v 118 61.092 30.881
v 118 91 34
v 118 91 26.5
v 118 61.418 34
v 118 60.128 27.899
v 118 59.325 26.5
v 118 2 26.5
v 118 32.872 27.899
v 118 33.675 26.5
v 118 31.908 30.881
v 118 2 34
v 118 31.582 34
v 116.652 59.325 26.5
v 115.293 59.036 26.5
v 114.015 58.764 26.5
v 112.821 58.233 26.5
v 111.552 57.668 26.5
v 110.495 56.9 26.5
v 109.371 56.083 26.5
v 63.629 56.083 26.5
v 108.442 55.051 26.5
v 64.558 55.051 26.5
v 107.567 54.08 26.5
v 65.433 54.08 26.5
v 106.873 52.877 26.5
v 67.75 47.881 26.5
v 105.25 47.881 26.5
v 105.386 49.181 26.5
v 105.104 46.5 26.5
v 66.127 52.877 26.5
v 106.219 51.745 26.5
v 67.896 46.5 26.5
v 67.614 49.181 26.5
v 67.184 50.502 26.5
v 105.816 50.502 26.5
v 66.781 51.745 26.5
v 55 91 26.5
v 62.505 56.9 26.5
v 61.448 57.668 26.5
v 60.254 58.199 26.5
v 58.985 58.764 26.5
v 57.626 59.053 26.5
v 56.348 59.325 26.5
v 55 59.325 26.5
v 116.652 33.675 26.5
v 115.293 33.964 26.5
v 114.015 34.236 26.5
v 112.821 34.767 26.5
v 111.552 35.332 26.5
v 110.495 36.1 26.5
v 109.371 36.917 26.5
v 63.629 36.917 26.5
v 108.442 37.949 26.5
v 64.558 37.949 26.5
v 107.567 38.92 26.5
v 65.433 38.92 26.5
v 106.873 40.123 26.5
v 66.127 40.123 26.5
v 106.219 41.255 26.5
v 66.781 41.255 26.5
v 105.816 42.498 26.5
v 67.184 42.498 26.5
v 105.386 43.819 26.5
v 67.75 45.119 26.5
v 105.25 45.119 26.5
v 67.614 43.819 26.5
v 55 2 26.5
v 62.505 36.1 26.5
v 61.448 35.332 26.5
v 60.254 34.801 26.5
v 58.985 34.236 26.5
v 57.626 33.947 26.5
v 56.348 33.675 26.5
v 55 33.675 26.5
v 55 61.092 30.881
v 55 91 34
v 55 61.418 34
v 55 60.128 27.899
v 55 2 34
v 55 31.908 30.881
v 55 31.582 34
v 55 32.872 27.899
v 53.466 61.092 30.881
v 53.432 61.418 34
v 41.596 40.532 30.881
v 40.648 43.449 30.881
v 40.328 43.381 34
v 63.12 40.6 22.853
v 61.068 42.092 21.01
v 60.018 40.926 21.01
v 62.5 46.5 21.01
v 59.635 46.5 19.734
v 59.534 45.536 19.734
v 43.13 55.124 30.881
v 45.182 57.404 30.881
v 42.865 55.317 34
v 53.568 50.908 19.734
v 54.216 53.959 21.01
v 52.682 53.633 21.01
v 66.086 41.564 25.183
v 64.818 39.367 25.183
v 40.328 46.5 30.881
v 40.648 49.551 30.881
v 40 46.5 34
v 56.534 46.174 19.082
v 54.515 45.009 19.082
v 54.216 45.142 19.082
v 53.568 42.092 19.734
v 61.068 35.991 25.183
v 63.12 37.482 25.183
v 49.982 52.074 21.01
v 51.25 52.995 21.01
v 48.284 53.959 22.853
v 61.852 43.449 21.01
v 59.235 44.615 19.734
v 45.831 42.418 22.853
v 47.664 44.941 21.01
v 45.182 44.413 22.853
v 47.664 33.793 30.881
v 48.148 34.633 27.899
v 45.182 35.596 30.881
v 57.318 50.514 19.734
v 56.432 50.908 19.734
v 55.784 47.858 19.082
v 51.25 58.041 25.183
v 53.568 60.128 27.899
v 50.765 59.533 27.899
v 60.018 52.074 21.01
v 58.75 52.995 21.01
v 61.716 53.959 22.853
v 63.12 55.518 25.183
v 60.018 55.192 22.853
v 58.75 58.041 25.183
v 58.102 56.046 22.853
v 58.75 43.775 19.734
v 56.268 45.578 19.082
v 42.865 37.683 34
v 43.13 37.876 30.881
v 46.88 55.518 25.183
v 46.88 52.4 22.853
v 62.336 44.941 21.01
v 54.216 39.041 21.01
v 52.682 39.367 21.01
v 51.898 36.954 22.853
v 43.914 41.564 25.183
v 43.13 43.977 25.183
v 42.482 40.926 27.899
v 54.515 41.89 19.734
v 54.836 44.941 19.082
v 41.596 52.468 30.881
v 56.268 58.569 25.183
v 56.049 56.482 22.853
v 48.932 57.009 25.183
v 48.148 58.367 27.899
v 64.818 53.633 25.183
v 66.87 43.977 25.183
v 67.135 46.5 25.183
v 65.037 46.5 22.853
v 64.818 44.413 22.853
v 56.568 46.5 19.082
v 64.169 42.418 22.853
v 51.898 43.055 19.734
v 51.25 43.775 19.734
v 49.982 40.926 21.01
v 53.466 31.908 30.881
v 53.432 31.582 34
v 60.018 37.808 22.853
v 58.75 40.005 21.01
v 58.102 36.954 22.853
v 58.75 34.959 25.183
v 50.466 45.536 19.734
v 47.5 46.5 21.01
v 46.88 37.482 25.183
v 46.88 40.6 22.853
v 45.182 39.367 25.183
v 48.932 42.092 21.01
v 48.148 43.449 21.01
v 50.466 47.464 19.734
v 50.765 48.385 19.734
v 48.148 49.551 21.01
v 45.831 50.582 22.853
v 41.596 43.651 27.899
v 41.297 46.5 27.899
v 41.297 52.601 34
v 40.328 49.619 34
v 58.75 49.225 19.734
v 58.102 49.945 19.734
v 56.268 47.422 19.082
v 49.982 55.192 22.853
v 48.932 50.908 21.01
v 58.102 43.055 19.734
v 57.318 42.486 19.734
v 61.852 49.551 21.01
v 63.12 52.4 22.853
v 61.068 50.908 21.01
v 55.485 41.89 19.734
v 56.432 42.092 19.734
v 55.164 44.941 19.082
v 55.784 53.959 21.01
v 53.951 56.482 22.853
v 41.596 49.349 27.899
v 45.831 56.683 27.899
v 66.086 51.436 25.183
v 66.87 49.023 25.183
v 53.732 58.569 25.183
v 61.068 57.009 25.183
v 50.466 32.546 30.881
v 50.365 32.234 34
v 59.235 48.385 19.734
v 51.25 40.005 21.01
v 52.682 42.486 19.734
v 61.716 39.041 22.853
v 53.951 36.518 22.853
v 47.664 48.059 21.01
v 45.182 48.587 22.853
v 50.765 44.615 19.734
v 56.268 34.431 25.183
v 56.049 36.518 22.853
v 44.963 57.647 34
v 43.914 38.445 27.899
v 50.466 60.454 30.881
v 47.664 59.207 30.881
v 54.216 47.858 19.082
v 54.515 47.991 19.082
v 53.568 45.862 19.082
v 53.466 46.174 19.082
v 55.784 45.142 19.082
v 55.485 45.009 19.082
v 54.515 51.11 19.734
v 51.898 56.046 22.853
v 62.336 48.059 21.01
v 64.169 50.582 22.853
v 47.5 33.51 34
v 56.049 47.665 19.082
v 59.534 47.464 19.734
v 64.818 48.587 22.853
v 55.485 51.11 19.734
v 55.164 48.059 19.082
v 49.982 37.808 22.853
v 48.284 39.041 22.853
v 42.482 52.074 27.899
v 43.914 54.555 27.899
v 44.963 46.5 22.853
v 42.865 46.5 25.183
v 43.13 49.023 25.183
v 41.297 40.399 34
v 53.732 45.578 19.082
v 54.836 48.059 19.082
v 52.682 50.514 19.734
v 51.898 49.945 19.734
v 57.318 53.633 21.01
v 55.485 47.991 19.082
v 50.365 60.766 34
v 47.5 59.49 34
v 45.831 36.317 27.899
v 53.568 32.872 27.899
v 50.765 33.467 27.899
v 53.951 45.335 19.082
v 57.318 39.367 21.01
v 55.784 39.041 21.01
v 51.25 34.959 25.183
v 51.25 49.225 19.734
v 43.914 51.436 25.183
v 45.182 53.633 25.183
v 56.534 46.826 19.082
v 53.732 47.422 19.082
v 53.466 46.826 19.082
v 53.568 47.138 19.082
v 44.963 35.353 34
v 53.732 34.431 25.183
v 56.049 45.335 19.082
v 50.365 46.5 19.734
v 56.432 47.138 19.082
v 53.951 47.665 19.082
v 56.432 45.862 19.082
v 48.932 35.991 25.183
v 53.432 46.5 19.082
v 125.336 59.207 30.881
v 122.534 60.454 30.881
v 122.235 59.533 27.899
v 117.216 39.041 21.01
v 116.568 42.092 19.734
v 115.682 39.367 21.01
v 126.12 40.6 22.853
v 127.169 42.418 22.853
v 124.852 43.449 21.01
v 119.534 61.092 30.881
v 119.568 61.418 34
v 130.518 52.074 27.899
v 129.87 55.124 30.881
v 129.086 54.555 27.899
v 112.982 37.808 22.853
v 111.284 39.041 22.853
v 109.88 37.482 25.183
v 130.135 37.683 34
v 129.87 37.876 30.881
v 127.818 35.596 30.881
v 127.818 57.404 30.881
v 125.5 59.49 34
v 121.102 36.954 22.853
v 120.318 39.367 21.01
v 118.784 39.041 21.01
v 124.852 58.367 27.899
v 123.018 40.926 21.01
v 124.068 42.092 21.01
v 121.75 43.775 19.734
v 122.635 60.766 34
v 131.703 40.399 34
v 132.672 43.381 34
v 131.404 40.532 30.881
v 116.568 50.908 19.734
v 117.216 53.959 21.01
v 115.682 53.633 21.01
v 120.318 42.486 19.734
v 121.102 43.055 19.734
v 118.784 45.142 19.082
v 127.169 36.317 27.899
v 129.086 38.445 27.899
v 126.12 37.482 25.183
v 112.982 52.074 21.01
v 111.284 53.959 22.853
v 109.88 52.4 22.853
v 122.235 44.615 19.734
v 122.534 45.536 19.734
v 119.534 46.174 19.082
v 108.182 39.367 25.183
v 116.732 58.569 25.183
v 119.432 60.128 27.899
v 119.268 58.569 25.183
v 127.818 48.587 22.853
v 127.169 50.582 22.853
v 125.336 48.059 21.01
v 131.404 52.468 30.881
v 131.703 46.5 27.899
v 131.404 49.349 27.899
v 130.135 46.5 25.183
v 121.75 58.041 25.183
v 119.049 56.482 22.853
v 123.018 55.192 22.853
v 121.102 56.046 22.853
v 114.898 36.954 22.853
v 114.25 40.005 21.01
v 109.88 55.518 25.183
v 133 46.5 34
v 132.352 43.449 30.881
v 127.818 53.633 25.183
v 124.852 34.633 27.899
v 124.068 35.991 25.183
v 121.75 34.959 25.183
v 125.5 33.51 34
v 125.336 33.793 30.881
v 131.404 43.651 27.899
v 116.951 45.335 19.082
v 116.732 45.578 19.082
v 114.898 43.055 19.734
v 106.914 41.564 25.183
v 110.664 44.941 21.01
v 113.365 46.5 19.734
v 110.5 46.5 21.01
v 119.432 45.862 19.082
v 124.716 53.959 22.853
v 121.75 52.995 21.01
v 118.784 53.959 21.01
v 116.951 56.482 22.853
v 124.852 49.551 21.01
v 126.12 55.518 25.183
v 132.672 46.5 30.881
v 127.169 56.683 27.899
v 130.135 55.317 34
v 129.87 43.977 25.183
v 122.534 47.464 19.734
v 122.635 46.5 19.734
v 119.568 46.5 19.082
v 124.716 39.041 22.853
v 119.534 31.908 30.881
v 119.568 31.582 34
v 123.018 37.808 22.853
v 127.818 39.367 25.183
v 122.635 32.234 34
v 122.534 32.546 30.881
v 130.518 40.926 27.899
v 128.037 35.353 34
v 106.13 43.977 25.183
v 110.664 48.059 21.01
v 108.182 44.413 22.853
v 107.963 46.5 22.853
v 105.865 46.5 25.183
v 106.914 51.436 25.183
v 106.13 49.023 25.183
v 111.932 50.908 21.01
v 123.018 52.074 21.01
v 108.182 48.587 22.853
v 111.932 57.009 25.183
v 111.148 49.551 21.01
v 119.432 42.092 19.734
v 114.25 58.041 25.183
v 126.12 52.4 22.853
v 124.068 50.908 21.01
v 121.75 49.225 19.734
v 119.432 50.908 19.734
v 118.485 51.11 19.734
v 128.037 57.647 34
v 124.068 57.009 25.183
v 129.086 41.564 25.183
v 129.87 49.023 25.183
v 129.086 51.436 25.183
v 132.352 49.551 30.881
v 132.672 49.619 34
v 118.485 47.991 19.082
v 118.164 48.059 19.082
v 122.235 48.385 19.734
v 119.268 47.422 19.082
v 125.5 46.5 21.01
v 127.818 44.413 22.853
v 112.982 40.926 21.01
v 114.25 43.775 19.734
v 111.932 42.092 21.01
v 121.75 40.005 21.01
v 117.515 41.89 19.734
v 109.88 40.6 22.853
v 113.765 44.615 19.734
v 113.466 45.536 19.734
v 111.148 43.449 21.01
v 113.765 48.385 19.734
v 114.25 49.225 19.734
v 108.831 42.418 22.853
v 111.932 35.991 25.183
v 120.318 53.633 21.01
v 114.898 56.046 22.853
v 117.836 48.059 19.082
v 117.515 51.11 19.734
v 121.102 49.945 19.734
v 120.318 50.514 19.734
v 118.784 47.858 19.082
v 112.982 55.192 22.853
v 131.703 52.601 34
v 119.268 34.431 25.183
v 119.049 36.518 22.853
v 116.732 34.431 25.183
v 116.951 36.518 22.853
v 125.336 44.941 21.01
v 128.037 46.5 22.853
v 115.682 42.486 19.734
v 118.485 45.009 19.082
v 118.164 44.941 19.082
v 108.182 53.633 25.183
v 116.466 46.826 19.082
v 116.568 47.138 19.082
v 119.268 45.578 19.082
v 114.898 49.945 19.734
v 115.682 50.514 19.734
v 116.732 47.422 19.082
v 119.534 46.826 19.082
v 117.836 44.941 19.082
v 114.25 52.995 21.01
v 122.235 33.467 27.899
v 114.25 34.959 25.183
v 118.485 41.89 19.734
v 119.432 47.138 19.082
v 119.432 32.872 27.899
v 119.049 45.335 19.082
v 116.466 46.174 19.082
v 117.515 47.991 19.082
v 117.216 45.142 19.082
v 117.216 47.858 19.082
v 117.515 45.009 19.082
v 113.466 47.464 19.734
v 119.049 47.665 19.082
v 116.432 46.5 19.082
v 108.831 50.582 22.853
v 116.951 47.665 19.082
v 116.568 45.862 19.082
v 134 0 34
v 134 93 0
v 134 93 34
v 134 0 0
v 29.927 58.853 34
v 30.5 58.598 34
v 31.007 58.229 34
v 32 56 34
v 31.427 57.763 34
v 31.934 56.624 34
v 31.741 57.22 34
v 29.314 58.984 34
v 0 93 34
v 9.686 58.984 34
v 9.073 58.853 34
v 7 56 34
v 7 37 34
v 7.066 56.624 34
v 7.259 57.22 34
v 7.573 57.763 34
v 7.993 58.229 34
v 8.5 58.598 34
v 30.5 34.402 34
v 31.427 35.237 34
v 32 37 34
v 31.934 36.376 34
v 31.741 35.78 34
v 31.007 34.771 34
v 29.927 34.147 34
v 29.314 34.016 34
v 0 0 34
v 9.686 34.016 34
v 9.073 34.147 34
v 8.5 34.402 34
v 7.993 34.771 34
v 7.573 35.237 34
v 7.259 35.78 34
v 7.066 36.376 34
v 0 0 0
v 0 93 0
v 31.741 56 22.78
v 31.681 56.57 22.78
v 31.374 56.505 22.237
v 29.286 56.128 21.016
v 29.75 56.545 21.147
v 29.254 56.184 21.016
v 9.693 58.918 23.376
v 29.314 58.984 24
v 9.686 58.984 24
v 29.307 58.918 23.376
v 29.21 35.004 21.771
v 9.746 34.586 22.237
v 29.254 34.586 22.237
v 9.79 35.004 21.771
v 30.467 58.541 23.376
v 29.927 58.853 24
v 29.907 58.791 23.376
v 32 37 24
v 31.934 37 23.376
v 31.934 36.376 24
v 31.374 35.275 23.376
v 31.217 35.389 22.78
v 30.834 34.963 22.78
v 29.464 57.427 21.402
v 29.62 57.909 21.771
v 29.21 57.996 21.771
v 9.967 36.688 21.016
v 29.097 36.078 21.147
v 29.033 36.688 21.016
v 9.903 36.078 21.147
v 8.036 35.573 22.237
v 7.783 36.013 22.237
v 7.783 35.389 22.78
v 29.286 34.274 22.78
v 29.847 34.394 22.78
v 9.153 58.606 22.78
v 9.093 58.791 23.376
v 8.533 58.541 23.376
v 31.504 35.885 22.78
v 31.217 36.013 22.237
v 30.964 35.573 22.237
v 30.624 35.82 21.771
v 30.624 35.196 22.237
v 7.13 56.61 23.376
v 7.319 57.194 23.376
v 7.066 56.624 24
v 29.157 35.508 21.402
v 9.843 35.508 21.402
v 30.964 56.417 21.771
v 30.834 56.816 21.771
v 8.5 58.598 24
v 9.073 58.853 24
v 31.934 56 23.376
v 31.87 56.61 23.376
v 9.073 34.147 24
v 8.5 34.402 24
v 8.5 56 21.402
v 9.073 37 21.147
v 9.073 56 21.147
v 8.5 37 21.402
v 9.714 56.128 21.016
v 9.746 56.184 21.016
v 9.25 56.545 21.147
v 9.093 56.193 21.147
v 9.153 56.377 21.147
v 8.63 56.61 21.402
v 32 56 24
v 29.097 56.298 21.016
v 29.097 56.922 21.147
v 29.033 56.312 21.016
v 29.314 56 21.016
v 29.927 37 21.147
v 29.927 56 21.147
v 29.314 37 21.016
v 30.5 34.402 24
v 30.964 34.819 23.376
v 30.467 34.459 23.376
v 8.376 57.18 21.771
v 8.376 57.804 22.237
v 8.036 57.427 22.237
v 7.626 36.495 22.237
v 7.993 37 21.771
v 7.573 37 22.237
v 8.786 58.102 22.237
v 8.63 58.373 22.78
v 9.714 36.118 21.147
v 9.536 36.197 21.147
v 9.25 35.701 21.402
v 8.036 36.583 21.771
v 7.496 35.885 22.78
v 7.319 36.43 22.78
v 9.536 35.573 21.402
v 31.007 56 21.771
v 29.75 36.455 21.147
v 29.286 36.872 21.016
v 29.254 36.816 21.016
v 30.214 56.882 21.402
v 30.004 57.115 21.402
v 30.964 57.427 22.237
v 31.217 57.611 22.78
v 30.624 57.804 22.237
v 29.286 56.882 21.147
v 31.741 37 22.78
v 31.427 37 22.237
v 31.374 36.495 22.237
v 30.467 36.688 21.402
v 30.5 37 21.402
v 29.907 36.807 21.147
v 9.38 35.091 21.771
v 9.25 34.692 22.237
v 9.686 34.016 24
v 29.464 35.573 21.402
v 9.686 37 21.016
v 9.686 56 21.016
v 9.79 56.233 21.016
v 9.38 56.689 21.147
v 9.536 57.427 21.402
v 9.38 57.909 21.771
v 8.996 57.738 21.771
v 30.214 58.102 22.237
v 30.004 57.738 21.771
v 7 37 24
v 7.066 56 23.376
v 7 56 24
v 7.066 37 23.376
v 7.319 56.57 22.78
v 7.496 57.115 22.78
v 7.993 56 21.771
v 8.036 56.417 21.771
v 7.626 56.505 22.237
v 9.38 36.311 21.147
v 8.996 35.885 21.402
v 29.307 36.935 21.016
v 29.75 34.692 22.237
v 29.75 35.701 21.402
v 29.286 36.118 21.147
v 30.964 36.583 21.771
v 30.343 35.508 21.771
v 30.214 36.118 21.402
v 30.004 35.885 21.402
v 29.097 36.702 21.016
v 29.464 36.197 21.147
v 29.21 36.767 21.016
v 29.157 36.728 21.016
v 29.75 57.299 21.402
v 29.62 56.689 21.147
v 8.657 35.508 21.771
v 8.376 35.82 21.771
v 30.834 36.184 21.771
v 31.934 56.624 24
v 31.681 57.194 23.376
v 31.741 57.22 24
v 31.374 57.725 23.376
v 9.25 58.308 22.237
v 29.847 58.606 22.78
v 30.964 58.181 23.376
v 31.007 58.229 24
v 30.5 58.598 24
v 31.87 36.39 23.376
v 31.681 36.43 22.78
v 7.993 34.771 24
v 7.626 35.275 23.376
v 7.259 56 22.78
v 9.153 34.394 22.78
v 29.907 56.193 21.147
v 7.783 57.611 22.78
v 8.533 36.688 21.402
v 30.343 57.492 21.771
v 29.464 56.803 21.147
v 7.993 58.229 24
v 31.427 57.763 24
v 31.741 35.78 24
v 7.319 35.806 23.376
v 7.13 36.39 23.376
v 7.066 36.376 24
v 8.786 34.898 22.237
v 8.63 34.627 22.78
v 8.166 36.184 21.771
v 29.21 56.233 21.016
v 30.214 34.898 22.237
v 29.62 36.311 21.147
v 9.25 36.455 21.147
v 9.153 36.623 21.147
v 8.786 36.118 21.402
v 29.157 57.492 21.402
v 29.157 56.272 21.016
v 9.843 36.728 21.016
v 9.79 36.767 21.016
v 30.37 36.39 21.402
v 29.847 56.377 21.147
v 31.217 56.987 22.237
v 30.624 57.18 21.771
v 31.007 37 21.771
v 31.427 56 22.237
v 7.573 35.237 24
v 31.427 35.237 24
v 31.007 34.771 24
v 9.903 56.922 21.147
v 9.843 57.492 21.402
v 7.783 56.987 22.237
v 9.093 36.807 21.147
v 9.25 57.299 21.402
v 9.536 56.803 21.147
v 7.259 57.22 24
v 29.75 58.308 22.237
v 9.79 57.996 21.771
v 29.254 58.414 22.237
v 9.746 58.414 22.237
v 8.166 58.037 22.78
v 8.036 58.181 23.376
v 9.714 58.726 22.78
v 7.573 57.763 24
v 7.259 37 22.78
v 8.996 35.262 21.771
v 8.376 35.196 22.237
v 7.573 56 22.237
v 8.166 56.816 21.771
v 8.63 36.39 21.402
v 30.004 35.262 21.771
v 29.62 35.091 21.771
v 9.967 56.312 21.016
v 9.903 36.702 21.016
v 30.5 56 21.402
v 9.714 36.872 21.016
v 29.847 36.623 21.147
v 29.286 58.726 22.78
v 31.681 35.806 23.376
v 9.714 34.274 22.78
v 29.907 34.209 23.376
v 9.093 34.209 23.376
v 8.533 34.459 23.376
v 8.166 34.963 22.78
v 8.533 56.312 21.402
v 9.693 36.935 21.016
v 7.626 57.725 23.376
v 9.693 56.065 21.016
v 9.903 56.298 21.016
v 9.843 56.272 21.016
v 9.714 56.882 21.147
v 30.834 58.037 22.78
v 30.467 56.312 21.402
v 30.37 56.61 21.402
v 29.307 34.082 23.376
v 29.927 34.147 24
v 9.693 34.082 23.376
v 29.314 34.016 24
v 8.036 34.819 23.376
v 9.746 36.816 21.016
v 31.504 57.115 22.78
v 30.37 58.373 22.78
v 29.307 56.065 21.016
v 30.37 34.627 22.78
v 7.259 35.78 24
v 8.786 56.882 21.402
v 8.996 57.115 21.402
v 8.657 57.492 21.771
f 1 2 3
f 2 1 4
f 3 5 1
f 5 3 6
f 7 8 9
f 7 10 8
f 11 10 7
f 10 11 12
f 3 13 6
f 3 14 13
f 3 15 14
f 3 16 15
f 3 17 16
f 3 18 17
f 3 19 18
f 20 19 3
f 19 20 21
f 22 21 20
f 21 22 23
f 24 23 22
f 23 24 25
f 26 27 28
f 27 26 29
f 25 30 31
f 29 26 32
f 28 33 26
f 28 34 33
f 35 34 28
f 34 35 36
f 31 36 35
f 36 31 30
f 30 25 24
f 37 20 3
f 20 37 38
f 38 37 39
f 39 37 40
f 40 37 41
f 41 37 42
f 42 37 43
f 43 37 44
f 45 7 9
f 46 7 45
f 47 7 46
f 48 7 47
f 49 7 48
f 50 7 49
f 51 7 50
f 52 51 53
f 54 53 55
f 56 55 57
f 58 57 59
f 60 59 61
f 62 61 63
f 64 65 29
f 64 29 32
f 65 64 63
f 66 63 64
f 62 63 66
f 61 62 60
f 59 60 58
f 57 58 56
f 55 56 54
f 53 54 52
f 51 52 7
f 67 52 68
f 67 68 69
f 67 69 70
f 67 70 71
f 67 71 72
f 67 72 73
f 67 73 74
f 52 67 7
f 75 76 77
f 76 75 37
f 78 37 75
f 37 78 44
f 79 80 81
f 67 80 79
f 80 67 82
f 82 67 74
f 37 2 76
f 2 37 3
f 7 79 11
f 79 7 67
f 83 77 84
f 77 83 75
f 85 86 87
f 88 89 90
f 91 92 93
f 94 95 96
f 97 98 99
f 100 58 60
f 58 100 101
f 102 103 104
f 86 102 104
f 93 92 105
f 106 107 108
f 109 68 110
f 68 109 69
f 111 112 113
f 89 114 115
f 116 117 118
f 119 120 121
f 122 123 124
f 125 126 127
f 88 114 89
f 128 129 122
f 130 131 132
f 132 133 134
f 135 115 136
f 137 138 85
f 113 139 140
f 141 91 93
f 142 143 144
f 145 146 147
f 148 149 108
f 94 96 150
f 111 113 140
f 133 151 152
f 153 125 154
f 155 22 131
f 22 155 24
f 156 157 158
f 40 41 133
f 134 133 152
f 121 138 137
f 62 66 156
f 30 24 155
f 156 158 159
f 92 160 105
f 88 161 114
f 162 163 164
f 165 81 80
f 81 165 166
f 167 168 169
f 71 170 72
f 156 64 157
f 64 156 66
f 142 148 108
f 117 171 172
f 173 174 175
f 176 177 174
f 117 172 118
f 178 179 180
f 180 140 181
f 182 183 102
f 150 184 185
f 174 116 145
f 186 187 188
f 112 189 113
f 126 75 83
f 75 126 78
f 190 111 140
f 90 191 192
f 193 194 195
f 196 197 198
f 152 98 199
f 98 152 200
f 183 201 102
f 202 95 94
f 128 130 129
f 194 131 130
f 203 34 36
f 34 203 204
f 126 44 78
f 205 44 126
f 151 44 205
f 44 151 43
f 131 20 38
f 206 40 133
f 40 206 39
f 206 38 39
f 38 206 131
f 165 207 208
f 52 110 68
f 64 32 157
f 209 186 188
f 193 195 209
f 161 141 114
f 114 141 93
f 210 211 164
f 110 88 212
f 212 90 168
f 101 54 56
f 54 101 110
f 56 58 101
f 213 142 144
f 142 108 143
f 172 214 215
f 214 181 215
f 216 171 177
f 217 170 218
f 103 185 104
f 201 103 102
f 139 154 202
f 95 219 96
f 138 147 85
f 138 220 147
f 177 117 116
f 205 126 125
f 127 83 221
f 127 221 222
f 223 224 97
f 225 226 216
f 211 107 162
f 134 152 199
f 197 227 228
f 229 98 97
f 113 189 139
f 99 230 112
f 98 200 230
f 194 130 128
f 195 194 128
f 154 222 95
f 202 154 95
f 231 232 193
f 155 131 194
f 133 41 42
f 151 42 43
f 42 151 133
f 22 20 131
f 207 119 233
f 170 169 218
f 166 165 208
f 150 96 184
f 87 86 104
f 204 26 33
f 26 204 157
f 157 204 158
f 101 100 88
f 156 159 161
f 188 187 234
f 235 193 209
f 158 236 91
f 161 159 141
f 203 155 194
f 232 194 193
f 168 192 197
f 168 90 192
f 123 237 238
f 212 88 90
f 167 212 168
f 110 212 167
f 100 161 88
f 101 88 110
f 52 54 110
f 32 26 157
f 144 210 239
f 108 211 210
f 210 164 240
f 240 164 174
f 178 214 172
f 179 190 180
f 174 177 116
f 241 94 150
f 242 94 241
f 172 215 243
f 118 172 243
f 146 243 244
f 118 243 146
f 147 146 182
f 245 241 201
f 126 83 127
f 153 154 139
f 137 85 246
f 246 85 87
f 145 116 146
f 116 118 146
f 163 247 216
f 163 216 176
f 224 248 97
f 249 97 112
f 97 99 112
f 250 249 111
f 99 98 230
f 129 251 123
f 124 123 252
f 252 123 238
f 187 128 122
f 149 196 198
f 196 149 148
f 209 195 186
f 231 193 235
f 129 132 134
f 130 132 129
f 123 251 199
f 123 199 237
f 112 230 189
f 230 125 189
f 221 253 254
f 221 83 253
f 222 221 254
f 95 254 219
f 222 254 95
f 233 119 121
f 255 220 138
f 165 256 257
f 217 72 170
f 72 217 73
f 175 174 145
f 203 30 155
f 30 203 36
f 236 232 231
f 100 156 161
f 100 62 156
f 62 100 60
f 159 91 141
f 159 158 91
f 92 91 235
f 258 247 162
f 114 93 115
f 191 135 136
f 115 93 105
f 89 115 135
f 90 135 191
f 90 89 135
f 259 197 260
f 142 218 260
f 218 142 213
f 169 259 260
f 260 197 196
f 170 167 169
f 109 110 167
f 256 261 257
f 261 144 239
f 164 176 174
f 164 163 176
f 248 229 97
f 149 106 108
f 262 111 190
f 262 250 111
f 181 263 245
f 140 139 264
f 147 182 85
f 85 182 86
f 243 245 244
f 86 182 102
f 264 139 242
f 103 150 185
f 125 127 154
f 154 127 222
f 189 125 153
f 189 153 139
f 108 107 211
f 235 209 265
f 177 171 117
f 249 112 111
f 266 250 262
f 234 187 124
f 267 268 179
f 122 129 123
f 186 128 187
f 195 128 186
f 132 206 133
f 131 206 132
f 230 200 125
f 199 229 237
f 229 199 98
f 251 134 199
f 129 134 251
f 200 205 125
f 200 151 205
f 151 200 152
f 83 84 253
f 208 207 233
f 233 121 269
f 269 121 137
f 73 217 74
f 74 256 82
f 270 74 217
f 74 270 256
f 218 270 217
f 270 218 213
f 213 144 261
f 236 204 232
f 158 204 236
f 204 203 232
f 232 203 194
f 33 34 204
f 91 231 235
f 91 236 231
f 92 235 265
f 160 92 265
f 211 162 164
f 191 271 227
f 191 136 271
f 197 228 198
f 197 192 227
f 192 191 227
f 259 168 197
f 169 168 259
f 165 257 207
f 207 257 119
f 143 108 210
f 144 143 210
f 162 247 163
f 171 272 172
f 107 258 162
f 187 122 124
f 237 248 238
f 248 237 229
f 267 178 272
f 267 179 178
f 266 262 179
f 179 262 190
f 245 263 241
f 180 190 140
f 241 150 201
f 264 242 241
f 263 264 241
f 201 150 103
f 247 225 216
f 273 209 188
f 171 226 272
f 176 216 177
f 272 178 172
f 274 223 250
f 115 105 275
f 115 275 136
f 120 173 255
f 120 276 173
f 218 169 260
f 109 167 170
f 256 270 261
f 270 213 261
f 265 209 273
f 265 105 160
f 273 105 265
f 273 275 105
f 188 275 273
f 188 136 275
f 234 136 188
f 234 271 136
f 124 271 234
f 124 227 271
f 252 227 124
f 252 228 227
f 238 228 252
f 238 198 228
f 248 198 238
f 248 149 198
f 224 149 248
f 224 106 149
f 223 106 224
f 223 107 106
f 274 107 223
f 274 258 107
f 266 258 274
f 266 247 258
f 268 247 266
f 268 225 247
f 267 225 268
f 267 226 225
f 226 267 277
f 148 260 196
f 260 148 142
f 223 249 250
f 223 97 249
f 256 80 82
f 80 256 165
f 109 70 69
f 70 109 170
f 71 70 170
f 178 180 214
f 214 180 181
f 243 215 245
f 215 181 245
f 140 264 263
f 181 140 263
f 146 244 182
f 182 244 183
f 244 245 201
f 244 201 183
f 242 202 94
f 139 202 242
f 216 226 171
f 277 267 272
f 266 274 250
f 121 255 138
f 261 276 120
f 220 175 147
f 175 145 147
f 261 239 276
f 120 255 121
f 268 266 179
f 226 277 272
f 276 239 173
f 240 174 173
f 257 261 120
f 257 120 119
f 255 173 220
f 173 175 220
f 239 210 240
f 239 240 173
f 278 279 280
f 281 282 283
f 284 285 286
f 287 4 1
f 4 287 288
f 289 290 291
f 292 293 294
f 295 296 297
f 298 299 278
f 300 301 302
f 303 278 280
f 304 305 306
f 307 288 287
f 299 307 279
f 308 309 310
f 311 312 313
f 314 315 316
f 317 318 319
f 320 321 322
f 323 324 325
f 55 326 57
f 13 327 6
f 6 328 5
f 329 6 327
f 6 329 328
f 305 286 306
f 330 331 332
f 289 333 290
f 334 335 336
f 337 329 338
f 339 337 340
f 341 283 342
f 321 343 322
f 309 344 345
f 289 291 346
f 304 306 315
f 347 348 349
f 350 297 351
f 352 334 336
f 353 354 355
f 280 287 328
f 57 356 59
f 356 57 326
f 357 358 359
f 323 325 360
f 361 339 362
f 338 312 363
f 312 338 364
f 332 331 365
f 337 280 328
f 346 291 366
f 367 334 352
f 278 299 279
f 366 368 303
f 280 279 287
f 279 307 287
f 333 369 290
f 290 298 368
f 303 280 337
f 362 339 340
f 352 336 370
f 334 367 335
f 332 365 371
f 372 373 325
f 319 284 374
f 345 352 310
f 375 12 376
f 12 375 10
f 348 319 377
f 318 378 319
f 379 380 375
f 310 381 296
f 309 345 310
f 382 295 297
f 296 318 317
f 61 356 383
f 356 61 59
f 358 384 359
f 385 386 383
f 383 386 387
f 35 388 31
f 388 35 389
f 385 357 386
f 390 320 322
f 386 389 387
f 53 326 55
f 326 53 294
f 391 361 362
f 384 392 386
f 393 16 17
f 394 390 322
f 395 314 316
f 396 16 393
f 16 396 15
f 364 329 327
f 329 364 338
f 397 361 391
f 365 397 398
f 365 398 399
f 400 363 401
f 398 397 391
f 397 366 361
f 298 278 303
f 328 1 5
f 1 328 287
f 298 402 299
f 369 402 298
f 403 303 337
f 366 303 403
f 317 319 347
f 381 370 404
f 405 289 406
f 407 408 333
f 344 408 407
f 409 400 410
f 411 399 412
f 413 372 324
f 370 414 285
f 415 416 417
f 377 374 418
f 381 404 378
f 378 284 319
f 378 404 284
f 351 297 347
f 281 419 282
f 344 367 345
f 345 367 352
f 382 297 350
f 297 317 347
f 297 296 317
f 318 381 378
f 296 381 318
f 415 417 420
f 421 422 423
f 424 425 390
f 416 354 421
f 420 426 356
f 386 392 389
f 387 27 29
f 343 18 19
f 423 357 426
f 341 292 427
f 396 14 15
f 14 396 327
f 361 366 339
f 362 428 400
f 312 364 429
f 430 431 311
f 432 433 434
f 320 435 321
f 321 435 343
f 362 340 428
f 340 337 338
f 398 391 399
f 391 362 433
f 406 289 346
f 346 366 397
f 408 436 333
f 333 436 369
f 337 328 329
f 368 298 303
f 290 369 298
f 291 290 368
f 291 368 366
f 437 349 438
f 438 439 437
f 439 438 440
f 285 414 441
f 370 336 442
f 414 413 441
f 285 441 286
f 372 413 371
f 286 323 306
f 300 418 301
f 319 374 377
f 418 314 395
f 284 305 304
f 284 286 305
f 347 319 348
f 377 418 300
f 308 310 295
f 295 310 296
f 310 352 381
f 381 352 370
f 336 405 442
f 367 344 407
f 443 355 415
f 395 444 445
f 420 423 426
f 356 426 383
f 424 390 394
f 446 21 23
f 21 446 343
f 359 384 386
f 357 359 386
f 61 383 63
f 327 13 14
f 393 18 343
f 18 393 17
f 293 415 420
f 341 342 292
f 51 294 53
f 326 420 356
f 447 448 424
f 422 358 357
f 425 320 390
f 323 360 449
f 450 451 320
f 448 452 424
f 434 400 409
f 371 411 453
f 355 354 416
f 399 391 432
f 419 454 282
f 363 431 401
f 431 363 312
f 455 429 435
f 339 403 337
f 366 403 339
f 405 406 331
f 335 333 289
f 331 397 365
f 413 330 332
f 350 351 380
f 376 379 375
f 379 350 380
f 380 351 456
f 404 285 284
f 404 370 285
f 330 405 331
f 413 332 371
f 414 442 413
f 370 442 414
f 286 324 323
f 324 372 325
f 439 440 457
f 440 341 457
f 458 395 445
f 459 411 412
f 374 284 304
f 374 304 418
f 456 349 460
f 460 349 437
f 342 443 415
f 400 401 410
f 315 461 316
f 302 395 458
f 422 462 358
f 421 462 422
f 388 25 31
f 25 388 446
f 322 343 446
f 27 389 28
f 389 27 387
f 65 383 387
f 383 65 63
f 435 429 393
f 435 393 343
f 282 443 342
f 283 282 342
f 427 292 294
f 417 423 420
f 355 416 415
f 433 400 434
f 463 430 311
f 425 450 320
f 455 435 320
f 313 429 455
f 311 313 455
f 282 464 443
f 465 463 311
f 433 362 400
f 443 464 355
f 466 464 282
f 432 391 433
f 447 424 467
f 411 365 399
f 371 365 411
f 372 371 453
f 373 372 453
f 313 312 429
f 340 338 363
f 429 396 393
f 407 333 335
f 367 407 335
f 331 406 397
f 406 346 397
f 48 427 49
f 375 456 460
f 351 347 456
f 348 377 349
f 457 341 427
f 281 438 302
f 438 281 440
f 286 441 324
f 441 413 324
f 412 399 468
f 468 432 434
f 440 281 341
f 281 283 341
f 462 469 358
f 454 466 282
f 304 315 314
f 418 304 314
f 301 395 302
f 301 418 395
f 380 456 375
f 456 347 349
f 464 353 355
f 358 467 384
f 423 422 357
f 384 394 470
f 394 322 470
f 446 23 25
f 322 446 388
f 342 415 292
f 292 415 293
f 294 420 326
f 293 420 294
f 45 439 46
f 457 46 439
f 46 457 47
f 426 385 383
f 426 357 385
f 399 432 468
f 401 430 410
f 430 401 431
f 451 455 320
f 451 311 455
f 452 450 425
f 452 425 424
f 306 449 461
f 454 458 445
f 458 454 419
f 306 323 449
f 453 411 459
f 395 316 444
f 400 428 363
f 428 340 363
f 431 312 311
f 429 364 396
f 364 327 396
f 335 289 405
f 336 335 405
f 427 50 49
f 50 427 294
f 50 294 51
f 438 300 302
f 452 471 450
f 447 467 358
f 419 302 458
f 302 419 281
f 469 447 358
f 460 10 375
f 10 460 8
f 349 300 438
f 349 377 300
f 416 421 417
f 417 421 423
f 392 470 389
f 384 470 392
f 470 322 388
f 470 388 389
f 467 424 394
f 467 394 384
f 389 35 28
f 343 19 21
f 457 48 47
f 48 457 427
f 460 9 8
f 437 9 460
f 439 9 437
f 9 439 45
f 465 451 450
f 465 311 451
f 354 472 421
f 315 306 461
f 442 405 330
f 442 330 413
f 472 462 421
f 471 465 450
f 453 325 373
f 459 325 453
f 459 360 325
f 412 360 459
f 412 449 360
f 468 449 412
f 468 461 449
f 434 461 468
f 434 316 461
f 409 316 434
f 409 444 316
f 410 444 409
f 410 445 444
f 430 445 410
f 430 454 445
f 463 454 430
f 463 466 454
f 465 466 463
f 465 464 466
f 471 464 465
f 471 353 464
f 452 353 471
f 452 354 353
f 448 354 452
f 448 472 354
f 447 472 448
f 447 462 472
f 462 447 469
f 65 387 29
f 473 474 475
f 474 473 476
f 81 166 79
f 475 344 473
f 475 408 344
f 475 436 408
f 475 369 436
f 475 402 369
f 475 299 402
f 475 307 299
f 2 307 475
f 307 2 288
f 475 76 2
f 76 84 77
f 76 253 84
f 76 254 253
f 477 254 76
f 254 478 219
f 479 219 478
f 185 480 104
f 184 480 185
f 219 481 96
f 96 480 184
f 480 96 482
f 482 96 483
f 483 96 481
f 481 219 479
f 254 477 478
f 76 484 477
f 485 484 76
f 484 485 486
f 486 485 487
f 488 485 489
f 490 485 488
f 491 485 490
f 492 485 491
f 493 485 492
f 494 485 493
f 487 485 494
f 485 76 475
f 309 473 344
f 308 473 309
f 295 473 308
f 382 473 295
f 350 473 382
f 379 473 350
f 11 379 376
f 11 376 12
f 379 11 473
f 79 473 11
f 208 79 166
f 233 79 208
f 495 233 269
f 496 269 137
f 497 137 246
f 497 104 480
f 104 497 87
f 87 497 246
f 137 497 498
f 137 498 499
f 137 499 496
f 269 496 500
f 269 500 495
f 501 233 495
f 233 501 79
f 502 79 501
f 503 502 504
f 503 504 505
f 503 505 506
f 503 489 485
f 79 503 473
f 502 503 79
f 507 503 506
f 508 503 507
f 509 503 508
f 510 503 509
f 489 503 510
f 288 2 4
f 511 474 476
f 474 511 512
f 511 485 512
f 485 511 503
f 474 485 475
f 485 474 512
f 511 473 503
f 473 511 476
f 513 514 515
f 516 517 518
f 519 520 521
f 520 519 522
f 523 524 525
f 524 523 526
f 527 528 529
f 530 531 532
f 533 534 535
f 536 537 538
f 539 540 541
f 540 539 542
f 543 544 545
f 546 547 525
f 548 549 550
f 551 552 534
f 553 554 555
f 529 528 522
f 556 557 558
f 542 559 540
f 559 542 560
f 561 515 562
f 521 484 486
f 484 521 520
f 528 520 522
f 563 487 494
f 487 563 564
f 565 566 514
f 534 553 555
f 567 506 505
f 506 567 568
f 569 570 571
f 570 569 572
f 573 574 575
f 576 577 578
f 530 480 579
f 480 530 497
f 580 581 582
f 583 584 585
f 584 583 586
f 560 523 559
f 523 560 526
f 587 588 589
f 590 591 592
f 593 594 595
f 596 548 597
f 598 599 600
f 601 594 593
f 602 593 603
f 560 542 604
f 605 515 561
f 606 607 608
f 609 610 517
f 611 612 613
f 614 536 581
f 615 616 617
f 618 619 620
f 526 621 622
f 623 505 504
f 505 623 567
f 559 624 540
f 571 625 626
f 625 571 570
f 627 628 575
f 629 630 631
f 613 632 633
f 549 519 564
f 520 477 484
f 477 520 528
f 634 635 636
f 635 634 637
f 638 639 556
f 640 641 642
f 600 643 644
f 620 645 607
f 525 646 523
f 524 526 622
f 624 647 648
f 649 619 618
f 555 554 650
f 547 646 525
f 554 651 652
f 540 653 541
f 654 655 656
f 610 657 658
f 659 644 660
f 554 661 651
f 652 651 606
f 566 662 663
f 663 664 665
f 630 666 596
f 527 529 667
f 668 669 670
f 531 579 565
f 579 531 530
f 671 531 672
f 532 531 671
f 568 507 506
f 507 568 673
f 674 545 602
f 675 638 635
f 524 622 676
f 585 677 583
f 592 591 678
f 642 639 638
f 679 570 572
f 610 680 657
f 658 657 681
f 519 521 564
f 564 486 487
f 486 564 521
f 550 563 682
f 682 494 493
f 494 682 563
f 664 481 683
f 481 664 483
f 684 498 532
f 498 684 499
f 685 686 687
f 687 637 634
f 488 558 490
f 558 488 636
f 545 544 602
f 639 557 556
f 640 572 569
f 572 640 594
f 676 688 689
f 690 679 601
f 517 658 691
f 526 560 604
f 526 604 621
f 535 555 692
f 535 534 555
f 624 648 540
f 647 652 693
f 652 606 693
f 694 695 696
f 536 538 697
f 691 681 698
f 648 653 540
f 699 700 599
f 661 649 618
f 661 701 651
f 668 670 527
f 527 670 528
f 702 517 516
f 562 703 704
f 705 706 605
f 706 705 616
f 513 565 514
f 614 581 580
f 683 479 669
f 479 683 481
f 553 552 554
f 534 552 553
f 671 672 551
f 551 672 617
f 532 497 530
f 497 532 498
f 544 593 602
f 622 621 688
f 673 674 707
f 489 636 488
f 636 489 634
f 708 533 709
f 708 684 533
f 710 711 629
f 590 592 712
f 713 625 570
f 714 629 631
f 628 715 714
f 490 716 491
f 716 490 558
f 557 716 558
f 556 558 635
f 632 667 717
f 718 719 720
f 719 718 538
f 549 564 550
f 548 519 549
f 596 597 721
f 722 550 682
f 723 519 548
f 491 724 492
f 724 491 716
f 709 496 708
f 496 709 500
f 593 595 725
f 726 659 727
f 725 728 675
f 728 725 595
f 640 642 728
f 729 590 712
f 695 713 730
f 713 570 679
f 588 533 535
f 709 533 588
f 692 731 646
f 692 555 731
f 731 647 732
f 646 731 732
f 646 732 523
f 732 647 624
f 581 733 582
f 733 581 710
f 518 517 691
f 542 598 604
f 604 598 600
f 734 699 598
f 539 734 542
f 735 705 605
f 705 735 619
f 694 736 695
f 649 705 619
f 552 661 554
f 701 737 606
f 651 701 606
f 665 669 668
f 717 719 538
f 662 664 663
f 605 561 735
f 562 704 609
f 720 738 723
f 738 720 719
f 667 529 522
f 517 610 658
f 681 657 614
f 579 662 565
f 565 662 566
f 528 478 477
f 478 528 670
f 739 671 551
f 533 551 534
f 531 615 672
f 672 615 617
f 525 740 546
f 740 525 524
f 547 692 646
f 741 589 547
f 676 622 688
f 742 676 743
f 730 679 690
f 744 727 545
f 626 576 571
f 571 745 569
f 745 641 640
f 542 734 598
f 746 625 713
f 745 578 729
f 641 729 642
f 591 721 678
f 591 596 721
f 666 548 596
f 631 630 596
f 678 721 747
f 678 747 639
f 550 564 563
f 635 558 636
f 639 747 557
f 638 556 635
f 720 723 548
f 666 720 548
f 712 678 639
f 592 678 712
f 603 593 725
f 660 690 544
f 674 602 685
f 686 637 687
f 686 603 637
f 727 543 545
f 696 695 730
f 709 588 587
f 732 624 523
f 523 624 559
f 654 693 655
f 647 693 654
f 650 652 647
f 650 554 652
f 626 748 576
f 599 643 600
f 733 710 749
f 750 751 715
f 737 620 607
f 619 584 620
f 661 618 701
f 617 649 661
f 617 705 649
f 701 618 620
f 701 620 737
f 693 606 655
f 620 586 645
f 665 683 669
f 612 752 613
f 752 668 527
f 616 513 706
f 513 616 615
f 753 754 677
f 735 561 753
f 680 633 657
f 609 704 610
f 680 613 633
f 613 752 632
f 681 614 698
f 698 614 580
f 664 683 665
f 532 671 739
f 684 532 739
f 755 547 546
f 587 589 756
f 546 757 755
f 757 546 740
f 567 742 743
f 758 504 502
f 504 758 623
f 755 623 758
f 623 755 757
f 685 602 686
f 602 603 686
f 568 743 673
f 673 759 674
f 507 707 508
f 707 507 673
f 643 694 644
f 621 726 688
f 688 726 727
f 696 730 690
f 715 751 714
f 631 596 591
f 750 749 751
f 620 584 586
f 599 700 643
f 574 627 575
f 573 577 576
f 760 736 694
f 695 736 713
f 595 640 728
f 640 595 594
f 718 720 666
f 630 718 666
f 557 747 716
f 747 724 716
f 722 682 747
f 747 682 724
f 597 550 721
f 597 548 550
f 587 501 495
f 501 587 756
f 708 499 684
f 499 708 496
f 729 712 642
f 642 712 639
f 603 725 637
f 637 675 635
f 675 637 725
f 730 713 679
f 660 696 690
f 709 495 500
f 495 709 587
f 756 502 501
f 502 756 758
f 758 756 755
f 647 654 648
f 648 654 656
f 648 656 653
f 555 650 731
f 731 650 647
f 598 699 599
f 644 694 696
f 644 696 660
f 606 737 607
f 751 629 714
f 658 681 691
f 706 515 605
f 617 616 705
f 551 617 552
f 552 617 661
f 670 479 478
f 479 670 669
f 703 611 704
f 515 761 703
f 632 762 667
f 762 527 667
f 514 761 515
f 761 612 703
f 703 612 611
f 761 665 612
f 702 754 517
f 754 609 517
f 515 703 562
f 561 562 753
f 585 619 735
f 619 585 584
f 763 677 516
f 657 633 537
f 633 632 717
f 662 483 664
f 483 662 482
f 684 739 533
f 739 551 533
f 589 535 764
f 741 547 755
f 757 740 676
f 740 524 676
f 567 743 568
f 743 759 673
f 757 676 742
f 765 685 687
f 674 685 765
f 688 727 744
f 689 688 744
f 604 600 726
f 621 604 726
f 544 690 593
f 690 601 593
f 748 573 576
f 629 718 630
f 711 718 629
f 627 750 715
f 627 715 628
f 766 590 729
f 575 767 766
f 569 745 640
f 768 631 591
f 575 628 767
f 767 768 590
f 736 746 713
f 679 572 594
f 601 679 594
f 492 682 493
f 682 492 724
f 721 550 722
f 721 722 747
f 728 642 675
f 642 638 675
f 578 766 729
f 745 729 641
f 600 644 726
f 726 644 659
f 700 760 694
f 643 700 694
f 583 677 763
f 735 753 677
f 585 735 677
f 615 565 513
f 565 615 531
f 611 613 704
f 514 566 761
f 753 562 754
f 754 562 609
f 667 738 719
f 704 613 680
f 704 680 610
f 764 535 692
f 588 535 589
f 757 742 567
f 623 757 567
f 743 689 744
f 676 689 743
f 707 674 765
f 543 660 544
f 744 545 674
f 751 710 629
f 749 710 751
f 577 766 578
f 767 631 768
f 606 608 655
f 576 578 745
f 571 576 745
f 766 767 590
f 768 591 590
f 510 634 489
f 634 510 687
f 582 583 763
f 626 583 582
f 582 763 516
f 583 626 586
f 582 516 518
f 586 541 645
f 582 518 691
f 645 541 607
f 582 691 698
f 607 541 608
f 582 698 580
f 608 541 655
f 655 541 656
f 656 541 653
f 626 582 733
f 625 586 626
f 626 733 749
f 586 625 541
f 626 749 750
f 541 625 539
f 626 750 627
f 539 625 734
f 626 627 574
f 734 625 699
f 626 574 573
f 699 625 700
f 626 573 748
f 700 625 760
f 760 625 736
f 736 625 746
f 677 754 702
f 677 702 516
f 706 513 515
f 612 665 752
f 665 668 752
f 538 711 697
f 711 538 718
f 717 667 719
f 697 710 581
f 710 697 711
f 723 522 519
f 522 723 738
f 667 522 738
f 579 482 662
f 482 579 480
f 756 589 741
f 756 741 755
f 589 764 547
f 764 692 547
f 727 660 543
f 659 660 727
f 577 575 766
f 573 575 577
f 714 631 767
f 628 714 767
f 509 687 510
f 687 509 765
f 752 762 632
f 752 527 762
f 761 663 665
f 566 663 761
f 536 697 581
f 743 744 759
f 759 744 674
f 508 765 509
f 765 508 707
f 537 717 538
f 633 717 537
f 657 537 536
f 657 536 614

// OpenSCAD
// file: ../roundedcube.scad
// Aquired from https://danielupshaw.com/openscad-rounded-corners/
// License unknown

// Higher definition curves
$fs = 0.01;

module roundedcube(size = [1, 1, 1], center = false, radius = 0.5, apply_to = "all") {
	// If single value, convert to [x, y, z] vector
	size = (size[0] == undef) ? [size, size, size] : size;

	translate_min = radius;
	translate_xmax = size[0] - radius;
	translate_ymax = size[1] - radius;
	translate_zmax = size[2] - radius;

	diameter = radius * 2;

	module build_point(type = "sphere", rotate = [0, 0, 0]) {
		if (type == "sphere") {
			sphere(r = radius);
		} else if (type == "cylinder") {
			rotate(a = rotate)
			cylinder(h = diameter, r = radius, center = true);
		}
	}

	obj_translate = (center == false) ?
		[0, 0, 0] : [
			-(size[0] / 2),
			-(size[1] / 2),
			-(size[2] / 2)
		];

	translate(v = obj_translate) {
		hull() {
			for (translate_x = [translate_min, translate_xmax]) {
				x_at = (translate_x == translate_min) ? "min" : "max";
				for (translate_y = [translate_min, translate_ymax]) {
					y_at = (translate_y == translate_min) ? "min" : "max";
					for (translate_z = [translate_min, translate_zmax]) {
						z_at = (translate_z == translate_min) ? "min" : "max";

						translate(v = [translate_x, translate_y, translate_z])
						if (
							(apply_to == "all") ||
							(apply_to == "xmin" && x_at == "min") || (apply_to == "xmax" && x_at == "max") ||
							(apply_to == "ymin" && y_at == "min") || (apply_to == "ymax" && y_at == "max") ||
							(apply_to == "zmin" && z_at == "min") || (apply_to == "zmax" && z_at == "max")
						) {
							build_point("sphere");
						} else {
							rotate =
								(apply_to == "xmin" || apply_to == "xmax" || apply_to == "x") ? [0, 90, 0] : (
								(apply_to == "ymin" || apply_to == "ymax" || apply_to == "y") ? [90, 90, 0] :
								[0, 0, 0]
							);
							build_point("cylinder", rotate);
						}
					}
				}
			}
		}
	}
}
// main file
use <../roundedcube.scad>

BOX_DEPTH = 93;
BOX_WIDTH = 134;
BOX_HEIGHT = 34;

CARD_DEPTH = 89;
CARD_WIDTH = 63;
CARD_HEIGHT = 7.5;

TOKEN_DEPTH = 25;
TOKEN_WIDTH = 25;
TOKEN_HEIGHT = 10;
TOKEN_ROUND = 3;

THUMB_WIDTH = 30;

WALL_WIDTH = 1;

card_holder_total_width = CARD_WIDTH + THUMB_WIDTH + WALL_WIDTH * 2;

render_helper = 1; // Helps the quick render not have a "skin" on top of the hole

module token_cutout() {
    offset_x = (BOX_WIDTH - card_holder_total_width - TOKEN_WIDTH) / 2;
    offset_y = (BOX_DEPTH - TOKEN_DEPTH) / 2;
    offset_z = BOX_HEIGHT - TOKEN_HEIGHT - TOKEN_ROUND;
    
    translate([offset_x, offset_y, offset_z])
    roundedcube(
        [TOKEN_WIDTH, TOKEN_DEPTH, TOKEN_HEIGHT + TOKEN_ROUND * 2],
        radius = TOKEN_ROUND
    );
}

module card_cutout() {
    offset_x = BOX_WIDTH - CARD_WIDTH - WALL_WIDTH - THUMB_WIDTH / 2;
    offset_y = (BOX_DEPTH - CARD_DEPTH) / 2;
    offset_z = BOX_HEIGHT - CARD_HEIGHT;
    
    thumb_y = CARD_DEPTH / 2;
    thumb_z = CARD_HEIGHT;
    
    translate([offset_x, offset_y, offset_z])
    union() {
        cube([CARD_WIDTH, CARD_DEPTH, CARD_HEIGHT + render_helper]);
        
        translate([0, thumb_y, thumb_z])
        sphere(d = THUMB_WIDTH);
        
        translate([CARD_WIDTH, thumb_y, thumb_z])
        sphere(d = THUMB_WIDTH);
    }
}

module base_block() {
    cube([BOX_WIDTH, BOX_DEPTH, BOX_HEIGHT]);
}

difference() {
    base_block();
    card_cutout();
    token_cutout();
}
